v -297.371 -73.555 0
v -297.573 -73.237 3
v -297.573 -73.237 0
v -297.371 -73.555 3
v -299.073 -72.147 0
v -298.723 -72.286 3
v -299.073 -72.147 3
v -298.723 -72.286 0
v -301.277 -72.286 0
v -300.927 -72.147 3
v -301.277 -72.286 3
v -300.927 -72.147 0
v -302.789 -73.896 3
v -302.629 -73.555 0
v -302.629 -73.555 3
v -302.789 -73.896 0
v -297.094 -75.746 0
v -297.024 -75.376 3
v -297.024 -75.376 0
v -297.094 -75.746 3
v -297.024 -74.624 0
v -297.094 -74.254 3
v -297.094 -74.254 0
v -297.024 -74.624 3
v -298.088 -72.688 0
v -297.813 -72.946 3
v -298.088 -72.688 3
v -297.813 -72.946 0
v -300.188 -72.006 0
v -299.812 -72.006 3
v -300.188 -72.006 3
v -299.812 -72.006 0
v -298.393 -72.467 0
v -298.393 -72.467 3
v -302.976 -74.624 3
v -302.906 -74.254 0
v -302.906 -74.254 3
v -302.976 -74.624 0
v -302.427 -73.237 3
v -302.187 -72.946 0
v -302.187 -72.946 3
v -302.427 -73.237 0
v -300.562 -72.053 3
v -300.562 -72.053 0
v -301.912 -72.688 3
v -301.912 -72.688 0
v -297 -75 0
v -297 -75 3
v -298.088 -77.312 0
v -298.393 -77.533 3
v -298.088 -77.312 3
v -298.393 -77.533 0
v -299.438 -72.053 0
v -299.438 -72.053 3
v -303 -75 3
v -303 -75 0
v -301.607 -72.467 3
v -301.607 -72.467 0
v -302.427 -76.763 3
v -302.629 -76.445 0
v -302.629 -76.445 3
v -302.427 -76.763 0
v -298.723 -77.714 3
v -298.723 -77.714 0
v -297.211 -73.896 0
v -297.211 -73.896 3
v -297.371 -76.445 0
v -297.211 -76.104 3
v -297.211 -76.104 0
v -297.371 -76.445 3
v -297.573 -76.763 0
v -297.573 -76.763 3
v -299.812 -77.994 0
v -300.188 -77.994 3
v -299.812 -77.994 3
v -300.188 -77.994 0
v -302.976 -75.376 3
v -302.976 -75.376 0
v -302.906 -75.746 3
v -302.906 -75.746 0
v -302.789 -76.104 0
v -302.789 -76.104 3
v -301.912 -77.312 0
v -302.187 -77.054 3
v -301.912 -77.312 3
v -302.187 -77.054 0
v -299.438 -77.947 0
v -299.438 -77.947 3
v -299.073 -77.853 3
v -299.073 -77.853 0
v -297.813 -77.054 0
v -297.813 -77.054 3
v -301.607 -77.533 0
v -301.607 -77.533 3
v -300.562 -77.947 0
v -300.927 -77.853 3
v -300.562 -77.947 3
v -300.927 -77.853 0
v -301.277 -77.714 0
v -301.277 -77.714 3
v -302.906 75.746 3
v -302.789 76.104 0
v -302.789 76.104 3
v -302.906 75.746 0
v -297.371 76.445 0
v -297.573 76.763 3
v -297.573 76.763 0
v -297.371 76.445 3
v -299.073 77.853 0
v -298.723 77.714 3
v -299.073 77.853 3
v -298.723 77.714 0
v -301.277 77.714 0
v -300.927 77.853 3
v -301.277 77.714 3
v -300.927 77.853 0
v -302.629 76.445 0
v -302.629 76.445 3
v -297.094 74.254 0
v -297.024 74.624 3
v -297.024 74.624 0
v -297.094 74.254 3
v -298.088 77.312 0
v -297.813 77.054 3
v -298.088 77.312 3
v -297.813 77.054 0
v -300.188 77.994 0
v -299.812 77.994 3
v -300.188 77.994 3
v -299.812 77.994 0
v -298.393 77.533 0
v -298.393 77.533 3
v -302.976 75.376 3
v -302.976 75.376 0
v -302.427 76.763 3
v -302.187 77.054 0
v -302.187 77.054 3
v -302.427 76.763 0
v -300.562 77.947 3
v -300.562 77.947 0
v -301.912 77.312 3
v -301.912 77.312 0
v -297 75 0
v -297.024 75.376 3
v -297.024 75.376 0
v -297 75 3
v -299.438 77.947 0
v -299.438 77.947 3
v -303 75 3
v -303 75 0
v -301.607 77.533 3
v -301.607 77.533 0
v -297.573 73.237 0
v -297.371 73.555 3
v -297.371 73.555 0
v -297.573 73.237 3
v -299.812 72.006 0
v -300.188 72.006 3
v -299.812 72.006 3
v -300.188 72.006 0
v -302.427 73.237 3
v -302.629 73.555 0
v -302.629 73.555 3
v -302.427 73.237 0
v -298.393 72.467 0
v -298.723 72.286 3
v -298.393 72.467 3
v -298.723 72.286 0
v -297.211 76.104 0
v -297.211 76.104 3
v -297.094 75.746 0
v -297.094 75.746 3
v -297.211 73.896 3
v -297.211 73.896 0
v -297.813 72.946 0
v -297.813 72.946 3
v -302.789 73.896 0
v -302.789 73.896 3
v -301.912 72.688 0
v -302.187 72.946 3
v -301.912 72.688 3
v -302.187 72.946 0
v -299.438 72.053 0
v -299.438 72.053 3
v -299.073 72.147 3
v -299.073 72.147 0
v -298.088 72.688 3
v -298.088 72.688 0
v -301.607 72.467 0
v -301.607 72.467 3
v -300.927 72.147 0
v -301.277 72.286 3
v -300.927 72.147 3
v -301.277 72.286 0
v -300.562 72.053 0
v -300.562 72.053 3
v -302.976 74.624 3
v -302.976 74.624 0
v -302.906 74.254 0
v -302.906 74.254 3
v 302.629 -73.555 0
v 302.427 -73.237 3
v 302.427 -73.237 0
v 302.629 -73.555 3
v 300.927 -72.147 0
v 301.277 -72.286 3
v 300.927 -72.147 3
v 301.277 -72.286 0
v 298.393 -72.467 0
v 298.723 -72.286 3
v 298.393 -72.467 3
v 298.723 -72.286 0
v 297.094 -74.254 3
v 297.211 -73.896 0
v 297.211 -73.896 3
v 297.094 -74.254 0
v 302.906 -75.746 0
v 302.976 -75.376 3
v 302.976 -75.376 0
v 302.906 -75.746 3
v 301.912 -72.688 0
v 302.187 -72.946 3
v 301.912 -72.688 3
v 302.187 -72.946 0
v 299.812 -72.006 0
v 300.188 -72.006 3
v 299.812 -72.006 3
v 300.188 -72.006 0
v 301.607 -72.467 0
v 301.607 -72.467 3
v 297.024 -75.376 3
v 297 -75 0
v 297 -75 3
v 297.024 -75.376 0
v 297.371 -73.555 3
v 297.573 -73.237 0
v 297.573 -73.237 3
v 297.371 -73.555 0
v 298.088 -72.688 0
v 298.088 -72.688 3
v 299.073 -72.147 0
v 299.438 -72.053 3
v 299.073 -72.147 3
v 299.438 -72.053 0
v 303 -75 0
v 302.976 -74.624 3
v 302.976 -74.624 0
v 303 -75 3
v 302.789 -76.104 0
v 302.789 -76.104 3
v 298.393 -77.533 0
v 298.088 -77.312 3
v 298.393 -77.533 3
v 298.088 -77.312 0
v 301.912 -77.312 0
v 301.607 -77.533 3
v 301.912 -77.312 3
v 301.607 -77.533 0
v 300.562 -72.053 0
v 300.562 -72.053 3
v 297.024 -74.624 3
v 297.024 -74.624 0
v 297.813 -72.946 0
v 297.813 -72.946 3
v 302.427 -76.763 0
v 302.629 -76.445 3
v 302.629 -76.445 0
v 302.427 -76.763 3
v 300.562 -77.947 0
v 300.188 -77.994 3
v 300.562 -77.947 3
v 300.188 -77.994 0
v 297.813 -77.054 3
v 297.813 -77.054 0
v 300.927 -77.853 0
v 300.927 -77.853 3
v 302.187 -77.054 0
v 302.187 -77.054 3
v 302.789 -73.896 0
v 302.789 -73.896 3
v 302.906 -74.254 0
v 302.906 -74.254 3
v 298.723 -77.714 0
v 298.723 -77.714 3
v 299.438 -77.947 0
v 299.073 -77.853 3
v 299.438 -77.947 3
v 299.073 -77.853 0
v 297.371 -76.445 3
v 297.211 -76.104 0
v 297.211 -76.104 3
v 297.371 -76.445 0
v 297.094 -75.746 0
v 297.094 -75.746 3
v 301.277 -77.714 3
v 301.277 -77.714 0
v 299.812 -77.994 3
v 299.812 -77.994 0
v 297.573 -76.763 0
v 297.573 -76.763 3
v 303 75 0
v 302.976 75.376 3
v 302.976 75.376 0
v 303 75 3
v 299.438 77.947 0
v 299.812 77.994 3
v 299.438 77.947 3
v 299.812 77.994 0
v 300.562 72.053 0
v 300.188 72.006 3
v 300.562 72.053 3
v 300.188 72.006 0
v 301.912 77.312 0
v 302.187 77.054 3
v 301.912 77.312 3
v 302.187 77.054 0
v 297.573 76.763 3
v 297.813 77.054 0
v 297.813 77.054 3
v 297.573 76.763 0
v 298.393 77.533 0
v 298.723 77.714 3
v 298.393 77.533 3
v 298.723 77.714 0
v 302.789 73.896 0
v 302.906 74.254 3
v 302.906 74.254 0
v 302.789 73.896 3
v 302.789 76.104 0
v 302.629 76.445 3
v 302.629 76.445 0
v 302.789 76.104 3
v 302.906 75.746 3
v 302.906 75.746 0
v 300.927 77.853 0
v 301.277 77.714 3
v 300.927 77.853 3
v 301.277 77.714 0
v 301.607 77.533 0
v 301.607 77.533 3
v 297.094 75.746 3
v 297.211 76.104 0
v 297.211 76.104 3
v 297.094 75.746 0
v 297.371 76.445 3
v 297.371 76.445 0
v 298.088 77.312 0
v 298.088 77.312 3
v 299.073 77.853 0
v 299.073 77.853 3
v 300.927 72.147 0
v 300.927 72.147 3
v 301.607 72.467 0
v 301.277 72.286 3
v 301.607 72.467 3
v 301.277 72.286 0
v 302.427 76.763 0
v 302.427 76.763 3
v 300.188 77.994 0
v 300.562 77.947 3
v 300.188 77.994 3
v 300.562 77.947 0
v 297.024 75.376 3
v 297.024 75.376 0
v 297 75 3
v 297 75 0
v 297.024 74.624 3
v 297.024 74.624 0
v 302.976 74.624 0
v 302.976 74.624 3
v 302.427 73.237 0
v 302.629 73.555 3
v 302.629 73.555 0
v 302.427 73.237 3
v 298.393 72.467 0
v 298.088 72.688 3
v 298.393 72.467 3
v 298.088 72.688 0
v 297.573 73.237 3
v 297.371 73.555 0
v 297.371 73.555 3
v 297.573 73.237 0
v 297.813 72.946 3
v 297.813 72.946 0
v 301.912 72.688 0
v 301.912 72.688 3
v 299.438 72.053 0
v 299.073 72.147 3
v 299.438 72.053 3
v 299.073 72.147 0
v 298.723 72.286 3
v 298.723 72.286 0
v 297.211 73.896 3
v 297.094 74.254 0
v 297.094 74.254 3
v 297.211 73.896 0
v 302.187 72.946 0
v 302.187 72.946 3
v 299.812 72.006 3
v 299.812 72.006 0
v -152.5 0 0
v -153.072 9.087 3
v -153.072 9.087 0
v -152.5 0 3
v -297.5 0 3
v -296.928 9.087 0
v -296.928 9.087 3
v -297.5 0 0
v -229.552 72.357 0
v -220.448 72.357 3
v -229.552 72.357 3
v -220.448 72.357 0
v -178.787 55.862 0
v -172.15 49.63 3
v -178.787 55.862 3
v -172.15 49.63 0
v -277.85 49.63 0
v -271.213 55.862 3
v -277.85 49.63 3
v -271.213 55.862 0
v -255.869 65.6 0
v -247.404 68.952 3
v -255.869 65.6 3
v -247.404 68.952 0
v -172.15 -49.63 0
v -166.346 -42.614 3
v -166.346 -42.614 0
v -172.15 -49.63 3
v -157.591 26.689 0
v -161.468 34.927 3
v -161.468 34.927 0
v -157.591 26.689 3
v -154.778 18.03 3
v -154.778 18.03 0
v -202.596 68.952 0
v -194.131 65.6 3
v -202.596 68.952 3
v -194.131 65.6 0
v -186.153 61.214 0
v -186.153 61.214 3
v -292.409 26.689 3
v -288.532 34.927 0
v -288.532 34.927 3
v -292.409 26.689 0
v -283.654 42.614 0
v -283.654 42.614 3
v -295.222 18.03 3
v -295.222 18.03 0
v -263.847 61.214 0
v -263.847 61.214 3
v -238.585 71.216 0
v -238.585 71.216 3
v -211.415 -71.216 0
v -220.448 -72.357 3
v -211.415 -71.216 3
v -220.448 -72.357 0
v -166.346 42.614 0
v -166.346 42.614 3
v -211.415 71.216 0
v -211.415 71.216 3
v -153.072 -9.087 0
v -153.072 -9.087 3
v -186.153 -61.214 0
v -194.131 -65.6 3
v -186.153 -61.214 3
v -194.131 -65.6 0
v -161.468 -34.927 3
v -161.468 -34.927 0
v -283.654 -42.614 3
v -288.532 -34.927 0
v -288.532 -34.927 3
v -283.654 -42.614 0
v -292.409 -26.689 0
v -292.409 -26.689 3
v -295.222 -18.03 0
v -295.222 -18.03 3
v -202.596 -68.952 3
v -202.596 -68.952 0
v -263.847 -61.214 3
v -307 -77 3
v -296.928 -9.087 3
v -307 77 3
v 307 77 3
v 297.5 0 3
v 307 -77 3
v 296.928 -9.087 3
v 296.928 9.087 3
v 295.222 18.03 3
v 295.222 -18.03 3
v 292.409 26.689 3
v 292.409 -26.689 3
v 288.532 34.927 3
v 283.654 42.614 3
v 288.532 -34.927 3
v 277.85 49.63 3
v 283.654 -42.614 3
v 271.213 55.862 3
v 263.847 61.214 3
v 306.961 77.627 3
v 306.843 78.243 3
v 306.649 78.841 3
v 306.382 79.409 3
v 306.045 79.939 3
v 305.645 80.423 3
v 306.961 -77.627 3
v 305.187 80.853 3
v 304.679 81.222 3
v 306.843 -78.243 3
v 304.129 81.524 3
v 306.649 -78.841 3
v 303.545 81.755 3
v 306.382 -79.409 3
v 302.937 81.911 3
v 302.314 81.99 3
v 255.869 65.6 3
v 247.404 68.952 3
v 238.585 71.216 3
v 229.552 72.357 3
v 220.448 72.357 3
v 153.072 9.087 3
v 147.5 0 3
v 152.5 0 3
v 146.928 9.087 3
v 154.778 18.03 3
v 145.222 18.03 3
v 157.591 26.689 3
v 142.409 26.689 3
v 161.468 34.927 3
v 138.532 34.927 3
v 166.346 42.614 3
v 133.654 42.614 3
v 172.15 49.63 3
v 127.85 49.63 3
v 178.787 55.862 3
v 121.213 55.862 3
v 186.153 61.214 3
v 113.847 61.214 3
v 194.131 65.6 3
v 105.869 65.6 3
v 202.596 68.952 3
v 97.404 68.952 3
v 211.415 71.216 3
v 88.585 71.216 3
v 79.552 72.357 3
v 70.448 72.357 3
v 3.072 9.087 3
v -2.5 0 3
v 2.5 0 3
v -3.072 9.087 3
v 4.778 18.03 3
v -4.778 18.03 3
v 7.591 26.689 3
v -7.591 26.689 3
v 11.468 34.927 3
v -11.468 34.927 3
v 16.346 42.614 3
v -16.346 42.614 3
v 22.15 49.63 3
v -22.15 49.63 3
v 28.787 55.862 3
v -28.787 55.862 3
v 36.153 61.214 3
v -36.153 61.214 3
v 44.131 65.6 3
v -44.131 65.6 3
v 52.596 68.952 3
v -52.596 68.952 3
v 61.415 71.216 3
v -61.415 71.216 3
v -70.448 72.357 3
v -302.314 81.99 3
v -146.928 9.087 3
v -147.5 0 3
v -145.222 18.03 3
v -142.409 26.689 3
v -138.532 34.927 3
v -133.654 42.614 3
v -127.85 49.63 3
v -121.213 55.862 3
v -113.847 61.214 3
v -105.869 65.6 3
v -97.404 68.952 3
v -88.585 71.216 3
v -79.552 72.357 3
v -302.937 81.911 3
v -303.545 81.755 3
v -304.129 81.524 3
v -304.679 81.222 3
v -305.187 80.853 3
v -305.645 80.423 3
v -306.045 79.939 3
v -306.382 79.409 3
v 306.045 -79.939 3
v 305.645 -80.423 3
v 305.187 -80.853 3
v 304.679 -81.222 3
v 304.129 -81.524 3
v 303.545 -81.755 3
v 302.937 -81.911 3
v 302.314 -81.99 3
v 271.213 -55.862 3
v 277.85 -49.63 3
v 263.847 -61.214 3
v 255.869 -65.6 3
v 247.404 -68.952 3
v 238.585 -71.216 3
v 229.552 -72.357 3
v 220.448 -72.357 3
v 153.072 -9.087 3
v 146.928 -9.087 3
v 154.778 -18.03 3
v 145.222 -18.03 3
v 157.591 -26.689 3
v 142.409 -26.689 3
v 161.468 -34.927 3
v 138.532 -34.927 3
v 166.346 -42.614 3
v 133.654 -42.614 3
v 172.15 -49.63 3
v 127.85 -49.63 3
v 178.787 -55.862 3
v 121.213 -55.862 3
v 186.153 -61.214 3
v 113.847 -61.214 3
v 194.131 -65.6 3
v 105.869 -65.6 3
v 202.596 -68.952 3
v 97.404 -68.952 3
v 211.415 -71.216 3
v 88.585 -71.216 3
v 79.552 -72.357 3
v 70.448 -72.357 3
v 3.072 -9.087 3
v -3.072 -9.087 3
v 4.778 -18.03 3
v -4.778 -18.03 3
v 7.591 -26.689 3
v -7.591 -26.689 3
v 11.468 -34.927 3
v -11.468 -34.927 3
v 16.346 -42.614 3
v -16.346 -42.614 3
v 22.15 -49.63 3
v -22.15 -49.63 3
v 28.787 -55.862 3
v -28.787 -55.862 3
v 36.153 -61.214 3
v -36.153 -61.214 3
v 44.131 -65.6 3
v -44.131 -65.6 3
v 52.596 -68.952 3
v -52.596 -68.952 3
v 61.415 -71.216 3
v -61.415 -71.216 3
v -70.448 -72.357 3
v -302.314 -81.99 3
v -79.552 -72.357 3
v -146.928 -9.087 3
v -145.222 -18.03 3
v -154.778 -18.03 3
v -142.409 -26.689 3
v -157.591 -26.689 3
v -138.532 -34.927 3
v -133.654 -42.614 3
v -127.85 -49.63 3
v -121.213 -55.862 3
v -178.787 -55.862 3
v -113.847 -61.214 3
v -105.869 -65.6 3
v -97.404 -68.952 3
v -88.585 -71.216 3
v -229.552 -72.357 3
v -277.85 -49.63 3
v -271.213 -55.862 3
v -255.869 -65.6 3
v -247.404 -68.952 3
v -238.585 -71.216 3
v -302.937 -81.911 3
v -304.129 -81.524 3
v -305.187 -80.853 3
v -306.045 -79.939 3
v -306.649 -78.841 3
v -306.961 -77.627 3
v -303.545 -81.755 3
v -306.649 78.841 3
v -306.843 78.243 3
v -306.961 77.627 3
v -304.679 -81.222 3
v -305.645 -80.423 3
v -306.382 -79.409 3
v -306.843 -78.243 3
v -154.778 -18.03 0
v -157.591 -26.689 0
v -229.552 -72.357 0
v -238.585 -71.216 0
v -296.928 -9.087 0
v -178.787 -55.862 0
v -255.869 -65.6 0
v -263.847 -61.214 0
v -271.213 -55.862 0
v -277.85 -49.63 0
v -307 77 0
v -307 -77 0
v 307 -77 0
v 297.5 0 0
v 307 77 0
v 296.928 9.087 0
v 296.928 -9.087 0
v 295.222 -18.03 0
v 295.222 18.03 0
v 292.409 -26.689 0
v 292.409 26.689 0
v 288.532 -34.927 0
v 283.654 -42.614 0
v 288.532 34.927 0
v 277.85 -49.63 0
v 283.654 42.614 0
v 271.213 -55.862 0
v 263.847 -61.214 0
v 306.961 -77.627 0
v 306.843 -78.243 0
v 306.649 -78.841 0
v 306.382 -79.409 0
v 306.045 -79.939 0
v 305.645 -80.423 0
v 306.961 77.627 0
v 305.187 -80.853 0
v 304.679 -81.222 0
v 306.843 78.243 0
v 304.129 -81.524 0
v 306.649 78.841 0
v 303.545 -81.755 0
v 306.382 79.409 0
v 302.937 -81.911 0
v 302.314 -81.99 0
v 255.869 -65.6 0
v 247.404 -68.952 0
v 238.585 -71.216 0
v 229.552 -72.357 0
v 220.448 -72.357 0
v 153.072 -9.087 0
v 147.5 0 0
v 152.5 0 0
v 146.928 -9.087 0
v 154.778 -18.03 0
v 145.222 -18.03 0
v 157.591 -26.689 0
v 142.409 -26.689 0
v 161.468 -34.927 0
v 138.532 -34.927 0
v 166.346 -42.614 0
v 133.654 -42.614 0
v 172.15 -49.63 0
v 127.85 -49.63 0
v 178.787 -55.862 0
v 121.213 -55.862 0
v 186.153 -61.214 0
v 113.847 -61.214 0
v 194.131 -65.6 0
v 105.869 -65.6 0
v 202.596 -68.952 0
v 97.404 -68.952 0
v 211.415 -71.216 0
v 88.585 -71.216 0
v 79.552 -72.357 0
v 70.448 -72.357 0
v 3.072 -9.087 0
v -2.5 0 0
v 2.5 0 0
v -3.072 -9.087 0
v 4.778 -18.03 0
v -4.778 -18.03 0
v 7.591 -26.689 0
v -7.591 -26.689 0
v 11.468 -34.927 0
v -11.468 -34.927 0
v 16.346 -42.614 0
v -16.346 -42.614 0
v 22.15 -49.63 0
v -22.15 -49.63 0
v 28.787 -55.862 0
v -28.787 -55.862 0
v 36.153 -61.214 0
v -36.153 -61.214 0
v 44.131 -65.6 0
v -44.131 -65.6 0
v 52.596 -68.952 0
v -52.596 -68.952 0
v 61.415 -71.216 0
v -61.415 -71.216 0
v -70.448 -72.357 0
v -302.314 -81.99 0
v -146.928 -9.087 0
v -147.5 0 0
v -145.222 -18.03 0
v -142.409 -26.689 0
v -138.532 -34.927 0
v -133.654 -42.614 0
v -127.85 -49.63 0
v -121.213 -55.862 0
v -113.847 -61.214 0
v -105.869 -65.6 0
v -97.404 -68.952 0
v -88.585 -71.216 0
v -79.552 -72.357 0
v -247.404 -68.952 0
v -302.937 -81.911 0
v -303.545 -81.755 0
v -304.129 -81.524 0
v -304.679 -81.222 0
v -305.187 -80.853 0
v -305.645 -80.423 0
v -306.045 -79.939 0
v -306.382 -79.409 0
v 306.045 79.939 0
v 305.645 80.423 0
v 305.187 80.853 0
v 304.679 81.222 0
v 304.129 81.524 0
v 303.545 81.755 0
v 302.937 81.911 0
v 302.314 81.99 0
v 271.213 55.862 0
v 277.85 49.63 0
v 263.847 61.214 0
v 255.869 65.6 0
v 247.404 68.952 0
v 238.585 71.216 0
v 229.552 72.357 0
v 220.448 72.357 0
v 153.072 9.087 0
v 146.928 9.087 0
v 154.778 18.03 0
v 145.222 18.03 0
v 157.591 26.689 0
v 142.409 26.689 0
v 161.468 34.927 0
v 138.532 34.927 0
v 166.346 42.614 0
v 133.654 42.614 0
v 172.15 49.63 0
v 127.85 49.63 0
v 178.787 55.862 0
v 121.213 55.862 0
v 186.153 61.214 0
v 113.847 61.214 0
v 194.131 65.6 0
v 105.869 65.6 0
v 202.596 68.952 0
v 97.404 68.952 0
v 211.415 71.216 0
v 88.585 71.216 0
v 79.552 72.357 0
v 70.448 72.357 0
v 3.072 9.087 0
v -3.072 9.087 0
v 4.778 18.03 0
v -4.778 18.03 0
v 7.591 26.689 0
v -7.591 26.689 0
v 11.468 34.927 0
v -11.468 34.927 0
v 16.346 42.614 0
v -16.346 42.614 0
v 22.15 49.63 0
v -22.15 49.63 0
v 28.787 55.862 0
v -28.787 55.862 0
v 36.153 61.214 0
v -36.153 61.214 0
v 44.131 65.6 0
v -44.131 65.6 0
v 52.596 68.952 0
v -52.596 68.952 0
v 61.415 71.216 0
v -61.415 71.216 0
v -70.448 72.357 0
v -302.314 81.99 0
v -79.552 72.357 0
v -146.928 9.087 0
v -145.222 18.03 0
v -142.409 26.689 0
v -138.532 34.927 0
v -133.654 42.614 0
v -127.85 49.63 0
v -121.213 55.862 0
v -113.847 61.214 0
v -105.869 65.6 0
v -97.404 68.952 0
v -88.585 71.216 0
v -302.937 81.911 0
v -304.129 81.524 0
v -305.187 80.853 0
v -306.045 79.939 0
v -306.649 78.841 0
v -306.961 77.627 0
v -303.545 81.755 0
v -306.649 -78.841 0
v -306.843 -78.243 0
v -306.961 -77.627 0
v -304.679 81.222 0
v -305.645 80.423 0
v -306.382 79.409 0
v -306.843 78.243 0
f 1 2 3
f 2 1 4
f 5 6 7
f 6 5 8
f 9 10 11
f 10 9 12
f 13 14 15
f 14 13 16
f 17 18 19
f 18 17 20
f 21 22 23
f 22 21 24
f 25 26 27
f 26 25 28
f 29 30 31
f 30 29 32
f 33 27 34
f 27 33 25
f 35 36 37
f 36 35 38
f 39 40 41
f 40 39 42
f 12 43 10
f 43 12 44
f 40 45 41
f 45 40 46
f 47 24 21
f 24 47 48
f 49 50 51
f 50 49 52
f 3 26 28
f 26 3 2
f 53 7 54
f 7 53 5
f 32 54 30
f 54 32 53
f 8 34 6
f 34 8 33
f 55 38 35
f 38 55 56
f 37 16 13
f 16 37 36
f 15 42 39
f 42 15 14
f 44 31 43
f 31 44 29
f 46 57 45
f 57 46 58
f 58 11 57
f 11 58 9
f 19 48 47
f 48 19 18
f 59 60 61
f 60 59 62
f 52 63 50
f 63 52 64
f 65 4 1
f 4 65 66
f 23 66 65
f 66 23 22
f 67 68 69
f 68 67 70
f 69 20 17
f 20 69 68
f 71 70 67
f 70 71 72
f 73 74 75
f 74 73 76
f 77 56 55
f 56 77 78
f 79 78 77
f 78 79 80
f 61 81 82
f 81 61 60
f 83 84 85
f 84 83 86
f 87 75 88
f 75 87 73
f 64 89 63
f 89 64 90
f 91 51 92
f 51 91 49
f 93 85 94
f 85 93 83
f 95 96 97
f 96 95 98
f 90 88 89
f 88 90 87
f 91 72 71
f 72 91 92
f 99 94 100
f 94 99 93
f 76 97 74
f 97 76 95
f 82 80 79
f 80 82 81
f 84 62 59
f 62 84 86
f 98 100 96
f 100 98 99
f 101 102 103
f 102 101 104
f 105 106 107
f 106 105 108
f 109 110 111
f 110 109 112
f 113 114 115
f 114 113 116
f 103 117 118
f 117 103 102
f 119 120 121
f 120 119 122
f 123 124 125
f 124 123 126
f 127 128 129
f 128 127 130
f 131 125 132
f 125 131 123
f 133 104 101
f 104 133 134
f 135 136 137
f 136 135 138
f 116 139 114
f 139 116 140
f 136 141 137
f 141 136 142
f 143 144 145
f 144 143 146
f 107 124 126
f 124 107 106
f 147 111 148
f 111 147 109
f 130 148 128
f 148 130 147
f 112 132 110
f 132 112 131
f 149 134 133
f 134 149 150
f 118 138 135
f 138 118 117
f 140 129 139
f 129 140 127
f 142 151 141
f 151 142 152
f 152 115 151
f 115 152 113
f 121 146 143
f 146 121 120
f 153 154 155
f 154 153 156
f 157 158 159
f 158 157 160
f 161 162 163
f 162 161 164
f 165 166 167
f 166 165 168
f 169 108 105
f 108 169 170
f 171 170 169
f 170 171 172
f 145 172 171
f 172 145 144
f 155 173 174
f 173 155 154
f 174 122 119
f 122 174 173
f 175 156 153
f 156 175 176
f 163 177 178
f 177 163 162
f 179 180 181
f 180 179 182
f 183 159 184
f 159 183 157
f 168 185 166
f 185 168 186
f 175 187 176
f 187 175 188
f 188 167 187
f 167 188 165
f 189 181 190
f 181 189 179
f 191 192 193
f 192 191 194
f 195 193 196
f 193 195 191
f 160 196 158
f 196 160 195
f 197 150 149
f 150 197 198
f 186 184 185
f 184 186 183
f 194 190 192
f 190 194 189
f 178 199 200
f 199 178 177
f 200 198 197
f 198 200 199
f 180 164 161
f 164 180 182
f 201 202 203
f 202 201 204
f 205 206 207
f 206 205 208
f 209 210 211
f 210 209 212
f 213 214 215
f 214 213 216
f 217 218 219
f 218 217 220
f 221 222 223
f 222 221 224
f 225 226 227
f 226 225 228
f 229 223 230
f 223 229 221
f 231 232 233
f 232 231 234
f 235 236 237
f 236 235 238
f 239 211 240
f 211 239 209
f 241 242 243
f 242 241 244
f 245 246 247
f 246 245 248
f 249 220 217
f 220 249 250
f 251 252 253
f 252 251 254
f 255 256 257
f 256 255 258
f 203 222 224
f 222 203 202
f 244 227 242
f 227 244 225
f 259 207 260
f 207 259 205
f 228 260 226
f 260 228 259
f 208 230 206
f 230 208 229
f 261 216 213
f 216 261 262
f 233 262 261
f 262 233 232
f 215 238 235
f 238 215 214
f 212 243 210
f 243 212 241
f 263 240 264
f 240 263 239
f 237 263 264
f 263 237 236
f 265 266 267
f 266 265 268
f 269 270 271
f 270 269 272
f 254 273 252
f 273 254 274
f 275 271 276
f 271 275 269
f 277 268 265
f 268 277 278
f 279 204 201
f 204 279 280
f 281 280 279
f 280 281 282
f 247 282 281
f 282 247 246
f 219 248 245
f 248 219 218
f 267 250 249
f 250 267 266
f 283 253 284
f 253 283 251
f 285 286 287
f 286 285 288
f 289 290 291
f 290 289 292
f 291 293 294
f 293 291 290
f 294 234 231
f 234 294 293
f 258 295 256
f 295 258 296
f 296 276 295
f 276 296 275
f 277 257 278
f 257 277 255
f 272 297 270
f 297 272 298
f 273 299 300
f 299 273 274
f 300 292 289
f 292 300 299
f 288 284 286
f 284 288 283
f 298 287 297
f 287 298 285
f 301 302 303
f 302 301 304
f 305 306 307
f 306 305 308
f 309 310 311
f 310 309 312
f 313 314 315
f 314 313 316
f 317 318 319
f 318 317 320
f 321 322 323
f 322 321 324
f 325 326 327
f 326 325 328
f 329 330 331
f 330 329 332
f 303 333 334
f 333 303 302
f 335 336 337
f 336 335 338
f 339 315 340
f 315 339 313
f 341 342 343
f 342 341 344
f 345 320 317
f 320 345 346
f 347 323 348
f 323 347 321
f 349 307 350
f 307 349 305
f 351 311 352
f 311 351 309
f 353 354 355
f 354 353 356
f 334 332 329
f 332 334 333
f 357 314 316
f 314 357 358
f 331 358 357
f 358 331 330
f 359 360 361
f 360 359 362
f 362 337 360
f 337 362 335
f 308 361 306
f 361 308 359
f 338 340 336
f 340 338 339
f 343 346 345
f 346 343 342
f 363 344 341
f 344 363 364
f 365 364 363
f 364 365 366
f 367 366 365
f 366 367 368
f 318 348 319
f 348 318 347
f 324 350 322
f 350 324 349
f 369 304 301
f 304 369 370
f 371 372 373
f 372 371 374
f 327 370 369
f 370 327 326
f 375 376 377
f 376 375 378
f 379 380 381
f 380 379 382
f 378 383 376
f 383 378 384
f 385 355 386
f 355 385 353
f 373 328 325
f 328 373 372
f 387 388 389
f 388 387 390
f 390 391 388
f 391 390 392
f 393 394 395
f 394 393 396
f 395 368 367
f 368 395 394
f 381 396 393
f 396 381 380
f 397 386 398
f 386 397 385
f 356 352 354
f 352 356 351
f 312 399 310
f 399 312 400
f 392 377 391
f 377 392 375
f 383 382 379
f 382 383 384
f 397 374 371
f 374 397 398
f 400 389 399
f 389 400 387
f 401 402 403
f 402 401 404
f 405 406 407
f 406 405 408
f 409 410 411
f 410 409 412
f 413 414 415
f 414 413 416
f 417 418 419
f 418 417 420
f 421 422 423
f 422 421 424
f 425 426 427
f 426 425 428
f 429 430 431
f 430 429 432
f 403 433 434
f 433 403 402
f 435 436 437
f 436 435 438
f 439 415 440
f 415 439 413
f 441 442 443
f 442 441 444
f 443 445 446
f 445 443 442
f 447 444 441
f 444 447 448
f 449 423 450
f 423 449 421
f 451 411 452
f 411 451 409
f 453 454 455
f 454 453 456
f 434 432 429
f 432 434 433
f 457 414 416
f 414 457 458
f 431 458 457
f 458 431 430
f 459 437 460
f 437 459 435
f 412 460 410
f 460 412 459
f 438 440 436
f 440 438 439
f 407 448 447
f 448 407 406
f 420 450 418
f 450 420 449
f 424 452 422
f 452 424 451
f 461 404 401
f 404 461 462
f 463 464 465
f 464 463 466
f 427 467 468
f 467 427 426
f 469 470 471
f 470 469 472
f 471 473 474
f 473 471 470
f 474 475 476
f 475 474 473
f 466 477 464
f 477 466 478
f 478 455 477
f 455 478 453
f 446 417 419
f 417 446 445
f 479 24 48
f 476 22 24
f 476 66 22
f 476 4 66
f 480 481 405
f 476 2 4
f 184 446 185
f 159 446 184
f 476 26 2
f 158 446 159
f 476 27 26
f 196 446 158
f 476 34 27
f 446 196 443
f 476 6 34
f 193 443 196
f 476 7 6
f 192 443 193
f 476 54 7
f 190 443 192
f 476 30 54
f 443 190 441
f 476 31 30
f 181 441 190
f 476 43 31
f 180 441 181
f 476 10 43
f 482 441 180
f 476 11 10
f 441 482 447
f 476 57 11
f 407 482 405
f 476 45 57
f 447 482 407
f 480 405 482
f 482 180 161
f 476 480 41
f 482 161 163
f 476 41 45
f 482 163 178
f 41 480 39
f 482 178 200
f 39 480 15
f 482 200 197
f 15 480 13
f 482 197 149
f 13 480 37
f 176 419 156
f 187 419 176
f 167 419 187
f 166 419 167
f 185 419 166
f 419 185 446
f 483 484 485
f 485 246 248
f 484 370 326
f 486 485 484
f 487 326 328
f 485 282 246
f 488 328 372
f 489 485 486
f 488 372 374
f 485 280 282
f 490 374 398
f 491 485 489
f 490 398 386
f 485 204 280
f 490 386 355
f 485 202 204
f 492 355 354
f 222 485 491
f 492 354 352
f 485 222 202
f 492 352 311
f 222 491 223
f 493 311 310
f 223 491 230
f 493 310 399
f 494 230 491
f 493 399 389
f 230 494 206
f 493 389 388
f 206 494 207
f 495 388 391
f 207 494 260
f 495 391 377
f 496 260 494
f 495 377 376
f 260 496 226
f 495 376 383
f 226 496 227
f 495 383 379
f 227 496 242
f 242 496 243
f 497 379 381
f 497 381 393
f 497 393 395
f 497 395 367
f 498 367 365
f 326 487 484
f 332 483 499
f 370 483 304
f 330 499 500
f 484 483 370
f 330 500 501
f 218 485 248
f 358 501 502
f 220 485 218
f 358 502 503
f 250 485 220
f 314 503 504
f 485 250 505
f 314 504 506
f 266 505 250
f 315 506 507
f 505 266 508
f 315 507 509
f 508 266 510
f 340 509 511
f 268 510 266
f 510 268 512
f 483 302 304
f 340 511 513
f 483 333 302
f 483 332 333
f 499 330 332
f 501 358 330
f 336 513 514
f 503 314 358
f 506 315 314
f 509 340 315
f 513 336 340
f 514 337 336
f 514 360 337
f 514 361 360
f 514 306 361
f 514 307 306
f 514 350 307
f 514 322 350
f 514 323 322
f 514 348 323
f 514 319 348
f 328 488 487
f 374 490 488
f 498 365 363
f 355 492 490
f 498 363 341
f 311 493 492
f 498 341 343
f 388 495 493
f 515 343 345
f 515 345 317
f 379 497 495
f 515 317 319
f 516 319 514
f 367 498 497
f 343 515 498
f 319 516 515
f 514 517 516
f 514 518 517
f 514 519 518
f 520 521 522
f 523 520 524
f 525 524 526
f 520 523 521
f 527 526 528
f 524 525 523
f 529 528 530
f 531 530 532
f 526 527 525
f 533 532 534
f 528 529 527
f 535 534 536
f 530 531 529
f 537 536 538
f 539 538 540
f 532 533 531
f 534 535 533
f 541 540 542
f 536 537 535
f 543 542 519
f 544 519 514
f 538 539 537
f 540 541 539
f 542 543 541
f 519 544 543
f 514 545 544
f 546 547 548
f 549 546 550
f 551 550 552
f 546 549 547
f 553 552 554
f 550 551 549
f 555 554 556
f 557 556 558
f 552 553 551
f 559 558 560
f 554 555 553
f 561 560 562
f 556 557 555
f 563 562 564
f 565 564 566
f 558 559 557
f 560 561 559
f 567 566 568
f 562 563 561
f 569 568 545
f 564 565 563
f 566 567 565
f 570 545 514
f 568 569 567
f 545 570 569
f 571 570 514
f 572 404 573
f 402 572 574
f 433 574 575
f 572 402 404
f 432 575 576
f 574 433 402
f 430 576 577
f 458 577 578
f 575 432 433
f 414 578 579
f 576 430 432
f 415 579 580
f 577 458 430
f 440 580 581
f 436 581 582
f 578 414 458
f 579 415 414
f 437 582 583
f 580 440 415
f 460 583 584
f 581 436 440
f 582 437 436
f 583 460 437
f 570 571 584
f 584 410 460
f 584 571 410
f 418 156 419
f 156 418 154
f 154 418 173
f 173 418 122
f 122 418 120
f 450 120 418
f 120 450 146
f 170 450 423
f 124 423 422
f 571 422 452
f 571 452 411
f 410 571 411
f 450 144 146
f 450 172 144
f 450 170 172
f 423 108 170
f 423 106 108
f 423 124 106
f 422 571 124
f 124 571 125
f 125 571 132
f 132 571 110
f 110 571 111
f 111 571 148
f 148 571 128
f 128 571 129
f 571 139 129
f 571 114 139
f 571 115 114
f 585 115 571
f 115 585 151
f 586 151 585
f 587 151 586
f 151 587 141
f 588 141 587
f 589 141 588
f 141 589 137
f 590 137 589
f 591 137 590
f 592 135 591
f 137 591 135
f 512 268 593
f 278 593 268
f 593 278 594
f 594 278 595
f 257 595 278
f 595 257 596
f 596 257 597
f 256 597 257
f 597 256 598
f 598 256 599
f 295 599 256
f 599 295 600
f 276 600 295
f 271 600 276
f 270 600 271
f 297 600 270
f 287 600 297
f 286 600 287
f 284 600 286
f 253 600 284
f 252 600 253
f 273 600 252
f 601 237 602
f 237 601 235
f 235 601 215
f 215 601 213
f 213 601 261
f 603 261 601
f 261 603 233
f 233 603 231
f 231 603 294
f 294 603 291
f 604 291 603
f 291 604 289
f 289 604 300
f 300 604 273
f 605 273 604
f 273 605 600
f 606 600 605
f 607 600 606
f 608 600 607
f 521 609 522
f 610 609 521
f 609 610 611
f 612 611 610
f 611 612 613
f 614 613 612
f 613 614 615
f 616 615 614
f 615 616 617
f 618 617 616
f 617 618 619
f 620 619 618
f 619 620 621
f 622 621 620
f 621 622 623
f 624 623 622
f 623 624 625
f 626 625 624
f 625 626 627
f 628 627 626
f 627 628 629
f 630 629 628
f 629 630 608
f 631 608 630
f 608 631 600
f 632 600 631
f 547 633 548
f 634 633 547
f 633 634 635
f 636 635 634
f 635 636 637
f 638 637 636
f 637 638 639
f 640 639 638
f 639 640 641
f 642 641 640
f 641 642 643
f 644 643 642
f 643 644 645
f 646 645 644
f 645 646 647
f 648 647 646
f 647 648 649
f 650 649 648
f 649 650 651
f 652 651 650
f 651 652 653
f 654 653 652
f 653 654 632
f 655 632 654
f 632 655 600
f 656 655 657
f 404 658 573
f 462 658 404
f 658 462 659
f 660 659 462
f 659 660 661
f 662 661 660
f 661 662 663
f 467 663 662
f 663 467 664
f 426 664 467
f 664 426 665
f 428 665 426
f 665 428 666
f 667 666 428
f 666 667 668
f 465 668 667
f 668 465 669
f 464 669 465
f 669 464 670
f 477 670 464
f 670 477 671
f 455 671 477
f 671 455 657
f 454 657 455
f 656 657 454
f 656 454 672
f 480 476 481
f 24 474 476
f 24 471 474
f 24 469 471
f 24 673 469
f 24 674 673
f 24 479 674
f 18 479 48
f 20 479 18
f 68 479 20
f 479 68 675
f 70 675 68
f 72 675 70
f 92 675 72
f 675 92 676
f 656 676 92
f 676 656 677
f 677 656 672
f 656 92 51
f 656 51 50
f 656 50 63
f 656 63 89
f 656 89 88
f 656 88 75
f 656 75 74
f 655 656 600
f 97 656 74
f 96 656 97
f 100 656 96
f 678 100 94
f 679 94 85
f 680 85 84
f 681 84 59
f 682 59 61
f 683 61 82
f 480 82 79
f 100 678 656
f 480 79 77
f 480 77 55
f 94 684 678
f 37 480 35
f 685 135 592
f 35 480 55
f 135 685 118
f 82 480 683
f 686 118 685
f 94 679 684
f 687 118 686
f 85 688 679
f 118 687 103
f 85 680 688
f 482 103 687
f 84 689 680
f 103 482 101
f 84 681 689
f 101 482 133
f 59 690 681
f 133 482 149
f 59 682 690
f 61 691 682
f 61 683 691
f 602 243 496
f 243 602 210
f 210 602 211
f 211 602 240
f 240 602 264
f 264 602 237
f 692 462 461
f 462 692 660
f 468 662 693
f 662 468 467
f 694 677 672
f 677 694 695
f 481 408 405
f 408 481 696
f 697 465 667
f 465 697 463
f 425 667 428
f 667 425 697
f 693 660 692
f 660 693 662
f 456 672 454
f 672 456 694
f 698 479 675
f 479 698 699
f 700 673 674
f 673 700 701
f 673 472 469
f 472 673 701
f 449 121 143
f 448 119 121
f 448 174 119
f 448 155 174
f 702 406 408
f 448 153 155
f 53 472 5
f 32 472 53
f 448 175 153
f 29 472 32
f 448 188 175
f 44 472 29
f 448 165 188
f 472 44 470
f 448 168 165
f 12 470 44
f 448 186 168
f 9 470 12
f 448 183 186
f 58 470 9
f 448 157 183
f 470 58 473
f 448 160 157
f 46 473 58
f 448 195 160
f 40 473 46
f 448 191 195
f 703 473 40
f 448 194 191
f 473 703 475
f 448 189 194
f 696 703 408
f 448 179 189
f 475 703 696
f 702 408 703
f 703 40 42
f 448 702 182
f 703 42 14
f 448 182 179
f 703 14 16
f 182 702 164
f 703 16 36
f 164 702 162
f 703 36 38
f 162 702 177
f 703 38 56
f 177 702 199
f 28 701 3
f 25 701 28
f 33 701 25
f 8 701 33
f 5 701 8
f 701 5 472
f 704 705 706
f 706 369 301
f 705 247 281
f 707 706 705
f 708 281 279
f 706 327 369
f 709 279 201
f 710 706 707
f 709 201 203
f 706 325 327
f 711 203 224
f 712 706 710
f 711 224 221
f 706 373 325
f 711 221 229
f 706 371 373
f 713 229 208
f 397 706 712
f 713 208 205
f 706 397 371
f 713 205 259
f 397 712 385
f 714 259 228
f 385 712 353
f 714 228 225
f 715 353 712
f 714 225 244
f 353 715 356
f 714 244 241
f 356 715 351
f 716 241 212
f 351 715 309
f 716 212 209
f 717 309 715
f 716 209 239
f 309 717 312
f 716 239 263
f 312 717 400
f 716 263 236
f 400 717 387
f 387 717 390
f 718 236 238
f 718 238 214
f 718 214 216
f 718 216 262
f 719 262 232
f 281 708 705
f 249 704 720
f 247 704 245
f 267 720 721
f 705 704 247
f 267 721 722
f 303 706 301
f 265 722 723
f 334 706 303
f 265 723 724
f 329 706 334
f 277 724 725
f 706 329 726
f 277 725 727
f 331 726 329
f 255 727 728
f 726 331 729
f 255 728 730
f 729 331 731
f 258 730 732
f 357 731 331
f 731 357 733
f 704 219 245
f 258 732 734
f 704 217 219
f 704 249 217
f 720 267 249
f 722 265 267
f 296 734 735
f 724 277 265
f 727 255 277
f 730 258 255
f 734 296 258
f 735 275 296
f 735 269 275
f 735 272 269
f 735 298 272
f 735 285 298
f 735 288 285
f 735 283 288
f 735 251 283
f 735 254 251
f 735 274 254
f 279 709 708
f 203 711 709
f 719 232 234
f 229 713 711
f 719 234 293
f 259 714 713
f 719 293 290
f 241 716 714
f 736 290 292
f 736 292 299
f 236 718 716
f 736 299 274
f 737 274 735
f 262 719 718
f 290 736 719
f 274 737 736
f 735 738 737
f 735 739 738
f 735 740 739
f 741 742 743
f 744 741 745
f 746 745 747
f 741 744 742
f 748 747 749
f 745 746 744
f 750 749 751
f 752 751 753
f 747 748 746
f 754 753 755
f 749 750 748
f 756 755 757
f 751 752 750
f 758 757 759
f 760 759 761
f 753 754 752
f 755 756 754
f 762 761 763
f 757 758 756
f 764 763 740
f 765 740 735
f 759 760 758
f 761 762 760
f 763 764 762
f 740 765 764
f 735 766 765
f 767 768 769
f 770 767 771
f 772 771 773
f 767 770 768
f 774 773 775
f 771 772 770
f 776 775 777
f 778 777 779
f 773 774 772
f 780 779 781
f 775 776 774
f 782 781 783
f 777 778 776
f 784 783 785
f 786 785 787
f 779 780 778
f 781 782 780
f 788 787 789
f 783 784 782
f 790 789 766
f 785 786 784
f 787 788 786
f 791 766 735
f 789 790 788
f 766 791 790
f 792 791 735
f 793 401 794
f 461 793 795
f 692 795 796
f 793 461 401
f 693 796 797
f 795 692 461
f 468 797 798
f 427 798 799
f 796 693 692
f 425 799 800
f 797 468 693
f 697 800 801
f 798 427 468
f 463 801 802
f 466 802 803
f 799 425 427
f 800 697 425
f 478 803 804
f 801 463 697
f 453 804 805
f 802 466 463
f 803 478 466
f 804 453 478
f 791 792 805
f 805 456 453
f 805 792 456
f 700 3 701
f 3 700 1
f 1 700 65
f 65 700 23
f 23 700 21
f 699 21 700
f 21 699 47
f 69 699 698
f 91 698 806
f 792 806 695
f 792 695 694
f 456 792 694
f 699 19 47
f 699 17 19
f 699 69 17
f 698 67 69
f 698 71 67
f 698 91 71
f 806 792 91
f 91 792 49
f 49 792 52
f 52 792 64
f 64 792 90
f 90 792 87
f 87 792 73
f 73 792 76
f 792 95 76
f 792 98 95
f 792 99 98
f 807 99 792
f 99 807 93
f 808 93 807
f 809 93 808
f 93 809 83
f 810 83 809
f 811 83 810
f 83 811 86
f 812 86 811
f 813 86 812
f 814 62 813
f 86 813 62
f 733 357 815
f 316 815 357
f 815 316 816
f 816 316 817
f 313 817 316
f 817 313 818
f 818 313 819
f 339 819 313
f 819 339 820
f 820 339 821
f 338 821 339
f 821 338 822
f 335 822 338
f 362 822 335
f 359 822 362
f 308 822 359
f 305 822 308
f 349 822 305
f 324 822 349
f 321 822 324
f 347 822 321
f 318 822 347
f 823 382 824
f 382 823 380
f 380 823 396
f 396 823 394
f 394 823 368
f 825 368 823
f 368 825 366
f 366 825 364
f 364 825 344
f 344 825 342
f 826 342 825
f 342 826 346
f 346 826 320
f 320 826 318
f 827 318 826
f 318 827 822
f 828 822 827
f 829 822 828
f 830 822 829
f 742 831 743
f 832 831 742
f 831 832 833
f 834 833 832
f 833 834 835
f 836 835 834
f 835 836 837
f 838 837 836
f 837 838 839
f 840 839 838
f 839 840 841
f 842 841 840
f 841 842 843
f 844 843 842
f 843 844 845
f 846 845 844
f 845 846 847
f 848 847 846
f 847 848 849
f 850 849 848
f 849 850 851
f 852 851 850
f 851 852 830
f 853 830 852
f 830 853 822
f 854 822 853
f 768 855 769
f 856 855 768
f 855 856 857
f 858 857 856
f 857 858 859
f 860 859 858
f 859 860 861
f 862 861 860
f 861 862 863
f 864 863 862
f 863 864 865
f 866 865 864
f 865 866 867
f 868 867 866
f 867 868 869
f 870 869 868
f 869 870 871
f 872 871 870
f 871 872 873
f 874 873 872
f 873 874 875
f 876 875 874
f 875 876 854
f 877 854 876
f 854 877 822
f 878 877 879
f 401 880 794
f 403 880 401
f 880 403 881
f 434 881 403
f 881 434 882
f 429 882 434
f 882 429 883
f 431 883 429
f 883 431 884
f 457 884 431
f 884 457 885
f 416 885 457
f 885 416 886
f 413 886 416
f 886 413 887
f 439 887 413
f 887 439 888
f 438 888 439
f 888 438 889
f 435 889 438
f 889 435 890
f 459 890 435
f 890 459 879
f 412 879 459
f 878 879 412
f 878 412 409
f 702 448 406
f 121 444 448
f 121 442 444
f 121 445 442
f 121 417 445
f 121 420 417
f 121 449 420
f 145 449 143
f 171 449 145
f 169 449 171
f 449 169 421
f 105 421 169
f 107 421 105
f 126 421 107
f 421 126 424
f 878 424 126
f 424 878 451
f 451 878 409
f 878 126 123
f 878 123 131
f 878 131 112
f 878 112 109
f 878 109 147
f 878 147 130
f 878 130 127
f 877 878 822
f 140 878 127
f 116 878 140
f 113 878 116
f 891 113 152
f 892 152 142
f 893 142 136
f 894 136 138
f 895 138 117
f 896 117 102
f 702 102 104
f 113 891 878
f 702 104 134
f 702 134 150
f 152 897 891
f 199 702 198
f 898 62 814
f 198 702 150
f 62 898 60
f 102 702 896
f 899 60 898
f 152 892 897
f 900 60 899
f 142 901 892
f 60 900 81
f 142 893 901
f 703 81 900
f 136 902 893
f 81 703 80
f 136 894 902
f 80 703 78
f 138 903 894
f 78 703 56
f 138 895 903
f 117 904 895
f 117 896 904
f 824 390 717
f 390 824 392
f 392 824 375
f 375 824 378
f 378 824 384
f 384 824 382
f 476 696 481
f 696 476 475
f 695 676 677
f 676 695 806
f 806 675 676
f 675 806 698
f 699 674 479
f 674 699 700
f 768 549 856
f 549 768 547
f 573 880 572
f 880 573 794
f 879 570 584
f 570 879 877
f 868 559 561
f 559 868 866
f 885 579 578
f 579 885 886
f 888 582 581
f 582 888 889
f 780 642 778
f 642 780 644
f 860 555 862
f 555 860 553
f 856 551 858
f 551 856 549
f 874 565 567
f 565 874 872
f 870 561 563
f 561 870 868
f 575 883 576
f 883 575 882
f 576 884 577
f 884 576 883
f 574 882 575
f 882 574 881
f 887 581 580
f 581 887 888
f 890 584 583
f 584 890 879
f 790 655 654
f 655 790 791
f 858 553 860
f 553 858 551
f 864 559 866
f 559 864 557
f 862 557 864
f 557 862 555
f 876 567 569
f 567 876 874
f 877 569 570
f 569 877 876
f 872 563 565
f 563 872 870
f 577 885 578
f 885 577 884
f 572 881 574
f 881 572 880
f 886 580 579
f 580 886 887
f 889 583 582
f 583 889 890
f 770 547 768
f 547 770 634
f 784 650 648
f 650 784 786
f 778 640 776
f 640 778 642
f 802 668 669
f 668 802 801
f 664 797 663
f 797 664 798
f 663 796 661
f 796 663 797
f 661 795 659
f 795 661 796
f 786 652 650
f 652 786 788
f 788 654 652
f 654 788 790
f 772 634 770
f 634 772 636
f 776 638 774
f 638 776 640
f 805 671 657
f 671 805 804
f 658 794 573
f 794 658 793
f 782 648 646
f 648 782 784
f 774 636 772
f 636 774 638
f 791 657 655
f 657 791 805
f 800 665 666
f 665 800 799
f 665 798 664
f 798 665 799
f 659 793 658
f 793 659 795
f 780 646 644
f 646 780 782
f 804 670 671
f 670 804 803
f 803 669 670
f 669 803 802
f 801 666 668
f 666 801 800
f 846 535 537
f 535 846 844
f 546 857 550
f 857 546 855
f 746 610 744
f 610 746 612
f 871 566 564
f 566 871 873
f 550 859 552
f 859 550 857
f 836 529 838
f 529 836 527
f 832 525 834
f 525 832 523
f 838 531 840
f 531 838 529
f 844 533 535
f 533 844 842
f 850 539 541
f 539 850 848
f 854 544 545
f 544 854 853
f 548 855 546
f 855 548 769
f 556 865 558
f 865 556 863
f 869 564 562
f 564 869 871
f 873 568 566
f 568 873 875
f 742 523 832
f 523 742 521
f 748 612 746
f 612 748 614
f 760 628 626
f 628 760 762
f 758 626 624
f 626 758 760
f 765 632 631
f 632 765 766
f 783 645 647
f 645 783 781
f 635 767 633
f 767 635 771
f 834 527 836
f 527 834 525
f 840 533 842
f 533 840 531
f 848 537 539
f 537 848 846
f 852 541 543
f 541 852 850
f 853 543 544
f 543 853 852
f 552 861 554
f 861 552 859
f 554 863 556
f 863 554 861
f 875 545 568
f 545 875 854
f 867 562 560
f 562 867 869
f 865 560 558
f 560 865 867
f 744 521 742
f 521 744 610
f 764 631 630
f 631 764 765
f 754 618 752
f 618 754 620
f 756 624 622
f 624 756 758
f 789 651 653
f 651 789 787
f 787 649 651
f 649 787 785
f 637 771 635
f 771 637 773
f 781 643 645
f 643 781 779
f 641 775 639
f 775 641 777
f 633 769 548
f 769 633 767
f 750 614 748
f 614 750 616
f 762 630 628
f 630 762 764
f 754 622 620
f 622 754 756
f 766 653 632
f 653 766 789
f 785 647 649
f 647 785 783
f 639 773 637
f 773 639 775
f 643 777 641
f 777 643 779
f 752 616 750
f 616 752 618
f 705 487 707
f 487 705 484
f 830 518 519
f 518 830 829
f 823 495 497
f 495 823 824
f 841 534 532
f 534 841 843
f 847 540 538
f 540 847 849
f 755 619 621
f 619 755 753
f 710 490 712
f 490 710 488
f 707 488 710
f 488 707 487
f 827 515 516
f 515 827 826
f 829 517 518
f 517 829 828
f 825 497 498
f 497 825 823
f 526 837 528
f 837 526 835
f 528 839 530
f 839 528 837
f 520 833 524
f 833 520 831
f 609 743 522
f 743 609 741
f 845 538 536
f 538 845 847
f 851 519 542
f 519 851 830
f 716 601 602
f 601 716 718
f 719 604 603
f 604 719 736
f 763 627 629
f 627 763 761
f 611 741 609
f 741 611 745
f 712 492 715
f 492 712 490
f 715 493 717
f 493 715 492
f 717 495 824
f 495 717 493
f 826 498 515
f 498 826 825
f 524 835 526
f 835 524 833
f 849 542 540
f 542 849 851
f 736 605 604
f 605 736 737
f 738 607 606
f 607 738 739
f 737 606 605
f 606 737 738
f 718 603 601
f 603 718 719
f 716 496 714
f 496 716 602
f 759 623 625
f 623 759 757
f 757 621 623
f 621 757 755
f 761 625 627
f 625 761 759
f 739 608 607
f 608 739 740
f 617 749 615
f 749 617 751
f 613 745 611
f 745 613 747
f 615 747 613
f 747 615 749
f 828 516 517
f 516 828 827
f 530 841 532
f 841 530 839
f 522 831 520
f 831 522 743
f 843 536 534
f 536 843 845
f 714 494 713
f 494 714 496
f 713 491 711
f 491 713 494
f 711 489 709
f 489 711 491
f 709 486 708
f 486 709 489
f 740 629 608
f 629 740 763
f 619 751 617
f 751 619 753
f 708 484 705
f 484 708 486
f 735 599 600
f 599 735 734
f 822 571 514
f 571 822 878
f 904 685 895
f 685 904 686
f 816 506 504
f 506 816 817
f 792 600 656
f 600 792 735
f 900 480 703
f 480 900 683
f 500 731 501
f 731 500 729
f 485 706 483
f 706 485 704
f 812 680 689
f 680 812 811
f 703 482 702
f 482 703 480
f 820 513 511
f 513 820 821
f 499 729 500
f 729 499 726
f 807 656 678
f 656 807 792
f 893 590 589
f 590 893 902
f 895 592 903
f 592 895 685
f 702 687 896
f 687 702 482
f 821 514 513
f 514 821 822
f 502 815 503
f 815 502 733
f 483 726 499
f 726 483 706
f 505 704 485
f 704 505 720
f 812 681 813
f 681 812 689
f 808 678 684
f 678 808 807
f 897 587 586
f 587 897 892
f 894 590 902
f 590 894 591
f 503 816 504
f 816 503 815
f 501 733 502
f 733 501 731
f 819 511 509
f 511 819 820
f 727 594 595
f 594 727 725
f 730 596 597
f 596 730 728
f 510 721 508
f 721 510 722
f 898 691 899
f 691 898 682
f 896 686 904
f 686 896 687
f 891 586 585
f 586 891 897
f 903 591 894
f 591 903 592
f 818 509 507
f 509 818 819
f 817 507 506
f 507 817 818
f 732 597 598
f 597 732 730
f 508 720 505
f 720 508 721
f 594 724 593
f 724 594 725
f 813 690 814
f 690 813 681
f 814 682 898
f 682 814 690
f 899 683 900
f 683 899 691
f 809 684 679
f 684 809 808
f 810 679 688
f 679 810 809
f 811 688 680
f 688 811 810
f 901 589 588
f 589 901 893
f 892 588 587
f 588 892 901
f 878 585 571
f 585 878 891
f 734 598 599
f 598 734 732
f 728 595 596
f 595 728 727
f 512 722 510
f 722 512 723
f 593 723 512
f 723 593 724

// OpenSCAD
$fn = 50;


difference() {
	union() {
		hull() {
			translate(v = [-302.0000000000, 77.0000000000, 0]) {
				cylinder(h = 3, r = 5);
			}
			translate(v = [302.0000000000, 77.0000000000, 0]) {
				cylinder(h = 3, r = 5);
			}
			translate(v = [-302.0000000000, -77.0000000000, 0]) {
				cylinder(h = 3, r = 5);
			}
			translate(v = [302.0000000000, -77.0000000000, 0]) {
				cylinder(h = 3, r = 5);
			}
		}
	}
	union() {
		#translate(v = [-300.0000000000, -75.0000000000, -100.0000000000]) {
			cylinder(h = 200, r = 3.0000000000);
		}
		#translate(v = [-300.0000000000, 75.0000000000, -100.0000000000]) {
			cylinder(h = 200, r = 3.0000000000);
		}
		#translate(v = [300.0000000000, -75.0000000000, -100.0000000000]) {
			cylinder(h = 200, r = 3.0000000000);
		}
		#translate(v = [300.0000000000, 75.0000000000, -100.0000000000]) {
			cylinder(h = 200, r = 3.0000000000);
		}
		#translate(v = [-225.0000000000, 0, 0]) {
			cylinder(h = 3, r = 72.5000000000);
		}
		#translate(v = [-75.0000000000, 0, 0]) {
			cylinder(h = 3, r = 72.5000000000);
		}
		#translate(v = [75.0000000000, 0, 0]) {
			cylinder(h = 3, r = 72.5000000000);
		}
		#translate(v = [225.0000000000, 0, 0]) {
			cylinder(h = 3, r = 72.5000000000);
		}
	}
}
